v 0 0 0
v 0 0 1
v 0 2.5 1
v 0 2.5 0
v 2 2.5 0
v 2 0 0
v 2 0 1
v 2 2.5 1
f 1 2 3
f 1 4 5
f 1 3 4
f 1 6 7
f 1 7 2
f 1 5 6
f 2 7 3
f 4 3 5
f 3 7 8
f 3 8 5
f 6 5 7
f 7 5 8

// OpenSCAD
/* Warning, this is a very basic generator with a lot of approximation 
input data : [VDFN, J5A, 2.0x2.5mm, 4, , B, C04-01004B]
generated by com.zoubworld.electronics.cad.model3d.Basic
Date : Sun Feb 15 10:50:49 CET 2026
*/

//body
color("black")
translate([0,0,0])
cube([2.0,2.5,1.0], center=false);
